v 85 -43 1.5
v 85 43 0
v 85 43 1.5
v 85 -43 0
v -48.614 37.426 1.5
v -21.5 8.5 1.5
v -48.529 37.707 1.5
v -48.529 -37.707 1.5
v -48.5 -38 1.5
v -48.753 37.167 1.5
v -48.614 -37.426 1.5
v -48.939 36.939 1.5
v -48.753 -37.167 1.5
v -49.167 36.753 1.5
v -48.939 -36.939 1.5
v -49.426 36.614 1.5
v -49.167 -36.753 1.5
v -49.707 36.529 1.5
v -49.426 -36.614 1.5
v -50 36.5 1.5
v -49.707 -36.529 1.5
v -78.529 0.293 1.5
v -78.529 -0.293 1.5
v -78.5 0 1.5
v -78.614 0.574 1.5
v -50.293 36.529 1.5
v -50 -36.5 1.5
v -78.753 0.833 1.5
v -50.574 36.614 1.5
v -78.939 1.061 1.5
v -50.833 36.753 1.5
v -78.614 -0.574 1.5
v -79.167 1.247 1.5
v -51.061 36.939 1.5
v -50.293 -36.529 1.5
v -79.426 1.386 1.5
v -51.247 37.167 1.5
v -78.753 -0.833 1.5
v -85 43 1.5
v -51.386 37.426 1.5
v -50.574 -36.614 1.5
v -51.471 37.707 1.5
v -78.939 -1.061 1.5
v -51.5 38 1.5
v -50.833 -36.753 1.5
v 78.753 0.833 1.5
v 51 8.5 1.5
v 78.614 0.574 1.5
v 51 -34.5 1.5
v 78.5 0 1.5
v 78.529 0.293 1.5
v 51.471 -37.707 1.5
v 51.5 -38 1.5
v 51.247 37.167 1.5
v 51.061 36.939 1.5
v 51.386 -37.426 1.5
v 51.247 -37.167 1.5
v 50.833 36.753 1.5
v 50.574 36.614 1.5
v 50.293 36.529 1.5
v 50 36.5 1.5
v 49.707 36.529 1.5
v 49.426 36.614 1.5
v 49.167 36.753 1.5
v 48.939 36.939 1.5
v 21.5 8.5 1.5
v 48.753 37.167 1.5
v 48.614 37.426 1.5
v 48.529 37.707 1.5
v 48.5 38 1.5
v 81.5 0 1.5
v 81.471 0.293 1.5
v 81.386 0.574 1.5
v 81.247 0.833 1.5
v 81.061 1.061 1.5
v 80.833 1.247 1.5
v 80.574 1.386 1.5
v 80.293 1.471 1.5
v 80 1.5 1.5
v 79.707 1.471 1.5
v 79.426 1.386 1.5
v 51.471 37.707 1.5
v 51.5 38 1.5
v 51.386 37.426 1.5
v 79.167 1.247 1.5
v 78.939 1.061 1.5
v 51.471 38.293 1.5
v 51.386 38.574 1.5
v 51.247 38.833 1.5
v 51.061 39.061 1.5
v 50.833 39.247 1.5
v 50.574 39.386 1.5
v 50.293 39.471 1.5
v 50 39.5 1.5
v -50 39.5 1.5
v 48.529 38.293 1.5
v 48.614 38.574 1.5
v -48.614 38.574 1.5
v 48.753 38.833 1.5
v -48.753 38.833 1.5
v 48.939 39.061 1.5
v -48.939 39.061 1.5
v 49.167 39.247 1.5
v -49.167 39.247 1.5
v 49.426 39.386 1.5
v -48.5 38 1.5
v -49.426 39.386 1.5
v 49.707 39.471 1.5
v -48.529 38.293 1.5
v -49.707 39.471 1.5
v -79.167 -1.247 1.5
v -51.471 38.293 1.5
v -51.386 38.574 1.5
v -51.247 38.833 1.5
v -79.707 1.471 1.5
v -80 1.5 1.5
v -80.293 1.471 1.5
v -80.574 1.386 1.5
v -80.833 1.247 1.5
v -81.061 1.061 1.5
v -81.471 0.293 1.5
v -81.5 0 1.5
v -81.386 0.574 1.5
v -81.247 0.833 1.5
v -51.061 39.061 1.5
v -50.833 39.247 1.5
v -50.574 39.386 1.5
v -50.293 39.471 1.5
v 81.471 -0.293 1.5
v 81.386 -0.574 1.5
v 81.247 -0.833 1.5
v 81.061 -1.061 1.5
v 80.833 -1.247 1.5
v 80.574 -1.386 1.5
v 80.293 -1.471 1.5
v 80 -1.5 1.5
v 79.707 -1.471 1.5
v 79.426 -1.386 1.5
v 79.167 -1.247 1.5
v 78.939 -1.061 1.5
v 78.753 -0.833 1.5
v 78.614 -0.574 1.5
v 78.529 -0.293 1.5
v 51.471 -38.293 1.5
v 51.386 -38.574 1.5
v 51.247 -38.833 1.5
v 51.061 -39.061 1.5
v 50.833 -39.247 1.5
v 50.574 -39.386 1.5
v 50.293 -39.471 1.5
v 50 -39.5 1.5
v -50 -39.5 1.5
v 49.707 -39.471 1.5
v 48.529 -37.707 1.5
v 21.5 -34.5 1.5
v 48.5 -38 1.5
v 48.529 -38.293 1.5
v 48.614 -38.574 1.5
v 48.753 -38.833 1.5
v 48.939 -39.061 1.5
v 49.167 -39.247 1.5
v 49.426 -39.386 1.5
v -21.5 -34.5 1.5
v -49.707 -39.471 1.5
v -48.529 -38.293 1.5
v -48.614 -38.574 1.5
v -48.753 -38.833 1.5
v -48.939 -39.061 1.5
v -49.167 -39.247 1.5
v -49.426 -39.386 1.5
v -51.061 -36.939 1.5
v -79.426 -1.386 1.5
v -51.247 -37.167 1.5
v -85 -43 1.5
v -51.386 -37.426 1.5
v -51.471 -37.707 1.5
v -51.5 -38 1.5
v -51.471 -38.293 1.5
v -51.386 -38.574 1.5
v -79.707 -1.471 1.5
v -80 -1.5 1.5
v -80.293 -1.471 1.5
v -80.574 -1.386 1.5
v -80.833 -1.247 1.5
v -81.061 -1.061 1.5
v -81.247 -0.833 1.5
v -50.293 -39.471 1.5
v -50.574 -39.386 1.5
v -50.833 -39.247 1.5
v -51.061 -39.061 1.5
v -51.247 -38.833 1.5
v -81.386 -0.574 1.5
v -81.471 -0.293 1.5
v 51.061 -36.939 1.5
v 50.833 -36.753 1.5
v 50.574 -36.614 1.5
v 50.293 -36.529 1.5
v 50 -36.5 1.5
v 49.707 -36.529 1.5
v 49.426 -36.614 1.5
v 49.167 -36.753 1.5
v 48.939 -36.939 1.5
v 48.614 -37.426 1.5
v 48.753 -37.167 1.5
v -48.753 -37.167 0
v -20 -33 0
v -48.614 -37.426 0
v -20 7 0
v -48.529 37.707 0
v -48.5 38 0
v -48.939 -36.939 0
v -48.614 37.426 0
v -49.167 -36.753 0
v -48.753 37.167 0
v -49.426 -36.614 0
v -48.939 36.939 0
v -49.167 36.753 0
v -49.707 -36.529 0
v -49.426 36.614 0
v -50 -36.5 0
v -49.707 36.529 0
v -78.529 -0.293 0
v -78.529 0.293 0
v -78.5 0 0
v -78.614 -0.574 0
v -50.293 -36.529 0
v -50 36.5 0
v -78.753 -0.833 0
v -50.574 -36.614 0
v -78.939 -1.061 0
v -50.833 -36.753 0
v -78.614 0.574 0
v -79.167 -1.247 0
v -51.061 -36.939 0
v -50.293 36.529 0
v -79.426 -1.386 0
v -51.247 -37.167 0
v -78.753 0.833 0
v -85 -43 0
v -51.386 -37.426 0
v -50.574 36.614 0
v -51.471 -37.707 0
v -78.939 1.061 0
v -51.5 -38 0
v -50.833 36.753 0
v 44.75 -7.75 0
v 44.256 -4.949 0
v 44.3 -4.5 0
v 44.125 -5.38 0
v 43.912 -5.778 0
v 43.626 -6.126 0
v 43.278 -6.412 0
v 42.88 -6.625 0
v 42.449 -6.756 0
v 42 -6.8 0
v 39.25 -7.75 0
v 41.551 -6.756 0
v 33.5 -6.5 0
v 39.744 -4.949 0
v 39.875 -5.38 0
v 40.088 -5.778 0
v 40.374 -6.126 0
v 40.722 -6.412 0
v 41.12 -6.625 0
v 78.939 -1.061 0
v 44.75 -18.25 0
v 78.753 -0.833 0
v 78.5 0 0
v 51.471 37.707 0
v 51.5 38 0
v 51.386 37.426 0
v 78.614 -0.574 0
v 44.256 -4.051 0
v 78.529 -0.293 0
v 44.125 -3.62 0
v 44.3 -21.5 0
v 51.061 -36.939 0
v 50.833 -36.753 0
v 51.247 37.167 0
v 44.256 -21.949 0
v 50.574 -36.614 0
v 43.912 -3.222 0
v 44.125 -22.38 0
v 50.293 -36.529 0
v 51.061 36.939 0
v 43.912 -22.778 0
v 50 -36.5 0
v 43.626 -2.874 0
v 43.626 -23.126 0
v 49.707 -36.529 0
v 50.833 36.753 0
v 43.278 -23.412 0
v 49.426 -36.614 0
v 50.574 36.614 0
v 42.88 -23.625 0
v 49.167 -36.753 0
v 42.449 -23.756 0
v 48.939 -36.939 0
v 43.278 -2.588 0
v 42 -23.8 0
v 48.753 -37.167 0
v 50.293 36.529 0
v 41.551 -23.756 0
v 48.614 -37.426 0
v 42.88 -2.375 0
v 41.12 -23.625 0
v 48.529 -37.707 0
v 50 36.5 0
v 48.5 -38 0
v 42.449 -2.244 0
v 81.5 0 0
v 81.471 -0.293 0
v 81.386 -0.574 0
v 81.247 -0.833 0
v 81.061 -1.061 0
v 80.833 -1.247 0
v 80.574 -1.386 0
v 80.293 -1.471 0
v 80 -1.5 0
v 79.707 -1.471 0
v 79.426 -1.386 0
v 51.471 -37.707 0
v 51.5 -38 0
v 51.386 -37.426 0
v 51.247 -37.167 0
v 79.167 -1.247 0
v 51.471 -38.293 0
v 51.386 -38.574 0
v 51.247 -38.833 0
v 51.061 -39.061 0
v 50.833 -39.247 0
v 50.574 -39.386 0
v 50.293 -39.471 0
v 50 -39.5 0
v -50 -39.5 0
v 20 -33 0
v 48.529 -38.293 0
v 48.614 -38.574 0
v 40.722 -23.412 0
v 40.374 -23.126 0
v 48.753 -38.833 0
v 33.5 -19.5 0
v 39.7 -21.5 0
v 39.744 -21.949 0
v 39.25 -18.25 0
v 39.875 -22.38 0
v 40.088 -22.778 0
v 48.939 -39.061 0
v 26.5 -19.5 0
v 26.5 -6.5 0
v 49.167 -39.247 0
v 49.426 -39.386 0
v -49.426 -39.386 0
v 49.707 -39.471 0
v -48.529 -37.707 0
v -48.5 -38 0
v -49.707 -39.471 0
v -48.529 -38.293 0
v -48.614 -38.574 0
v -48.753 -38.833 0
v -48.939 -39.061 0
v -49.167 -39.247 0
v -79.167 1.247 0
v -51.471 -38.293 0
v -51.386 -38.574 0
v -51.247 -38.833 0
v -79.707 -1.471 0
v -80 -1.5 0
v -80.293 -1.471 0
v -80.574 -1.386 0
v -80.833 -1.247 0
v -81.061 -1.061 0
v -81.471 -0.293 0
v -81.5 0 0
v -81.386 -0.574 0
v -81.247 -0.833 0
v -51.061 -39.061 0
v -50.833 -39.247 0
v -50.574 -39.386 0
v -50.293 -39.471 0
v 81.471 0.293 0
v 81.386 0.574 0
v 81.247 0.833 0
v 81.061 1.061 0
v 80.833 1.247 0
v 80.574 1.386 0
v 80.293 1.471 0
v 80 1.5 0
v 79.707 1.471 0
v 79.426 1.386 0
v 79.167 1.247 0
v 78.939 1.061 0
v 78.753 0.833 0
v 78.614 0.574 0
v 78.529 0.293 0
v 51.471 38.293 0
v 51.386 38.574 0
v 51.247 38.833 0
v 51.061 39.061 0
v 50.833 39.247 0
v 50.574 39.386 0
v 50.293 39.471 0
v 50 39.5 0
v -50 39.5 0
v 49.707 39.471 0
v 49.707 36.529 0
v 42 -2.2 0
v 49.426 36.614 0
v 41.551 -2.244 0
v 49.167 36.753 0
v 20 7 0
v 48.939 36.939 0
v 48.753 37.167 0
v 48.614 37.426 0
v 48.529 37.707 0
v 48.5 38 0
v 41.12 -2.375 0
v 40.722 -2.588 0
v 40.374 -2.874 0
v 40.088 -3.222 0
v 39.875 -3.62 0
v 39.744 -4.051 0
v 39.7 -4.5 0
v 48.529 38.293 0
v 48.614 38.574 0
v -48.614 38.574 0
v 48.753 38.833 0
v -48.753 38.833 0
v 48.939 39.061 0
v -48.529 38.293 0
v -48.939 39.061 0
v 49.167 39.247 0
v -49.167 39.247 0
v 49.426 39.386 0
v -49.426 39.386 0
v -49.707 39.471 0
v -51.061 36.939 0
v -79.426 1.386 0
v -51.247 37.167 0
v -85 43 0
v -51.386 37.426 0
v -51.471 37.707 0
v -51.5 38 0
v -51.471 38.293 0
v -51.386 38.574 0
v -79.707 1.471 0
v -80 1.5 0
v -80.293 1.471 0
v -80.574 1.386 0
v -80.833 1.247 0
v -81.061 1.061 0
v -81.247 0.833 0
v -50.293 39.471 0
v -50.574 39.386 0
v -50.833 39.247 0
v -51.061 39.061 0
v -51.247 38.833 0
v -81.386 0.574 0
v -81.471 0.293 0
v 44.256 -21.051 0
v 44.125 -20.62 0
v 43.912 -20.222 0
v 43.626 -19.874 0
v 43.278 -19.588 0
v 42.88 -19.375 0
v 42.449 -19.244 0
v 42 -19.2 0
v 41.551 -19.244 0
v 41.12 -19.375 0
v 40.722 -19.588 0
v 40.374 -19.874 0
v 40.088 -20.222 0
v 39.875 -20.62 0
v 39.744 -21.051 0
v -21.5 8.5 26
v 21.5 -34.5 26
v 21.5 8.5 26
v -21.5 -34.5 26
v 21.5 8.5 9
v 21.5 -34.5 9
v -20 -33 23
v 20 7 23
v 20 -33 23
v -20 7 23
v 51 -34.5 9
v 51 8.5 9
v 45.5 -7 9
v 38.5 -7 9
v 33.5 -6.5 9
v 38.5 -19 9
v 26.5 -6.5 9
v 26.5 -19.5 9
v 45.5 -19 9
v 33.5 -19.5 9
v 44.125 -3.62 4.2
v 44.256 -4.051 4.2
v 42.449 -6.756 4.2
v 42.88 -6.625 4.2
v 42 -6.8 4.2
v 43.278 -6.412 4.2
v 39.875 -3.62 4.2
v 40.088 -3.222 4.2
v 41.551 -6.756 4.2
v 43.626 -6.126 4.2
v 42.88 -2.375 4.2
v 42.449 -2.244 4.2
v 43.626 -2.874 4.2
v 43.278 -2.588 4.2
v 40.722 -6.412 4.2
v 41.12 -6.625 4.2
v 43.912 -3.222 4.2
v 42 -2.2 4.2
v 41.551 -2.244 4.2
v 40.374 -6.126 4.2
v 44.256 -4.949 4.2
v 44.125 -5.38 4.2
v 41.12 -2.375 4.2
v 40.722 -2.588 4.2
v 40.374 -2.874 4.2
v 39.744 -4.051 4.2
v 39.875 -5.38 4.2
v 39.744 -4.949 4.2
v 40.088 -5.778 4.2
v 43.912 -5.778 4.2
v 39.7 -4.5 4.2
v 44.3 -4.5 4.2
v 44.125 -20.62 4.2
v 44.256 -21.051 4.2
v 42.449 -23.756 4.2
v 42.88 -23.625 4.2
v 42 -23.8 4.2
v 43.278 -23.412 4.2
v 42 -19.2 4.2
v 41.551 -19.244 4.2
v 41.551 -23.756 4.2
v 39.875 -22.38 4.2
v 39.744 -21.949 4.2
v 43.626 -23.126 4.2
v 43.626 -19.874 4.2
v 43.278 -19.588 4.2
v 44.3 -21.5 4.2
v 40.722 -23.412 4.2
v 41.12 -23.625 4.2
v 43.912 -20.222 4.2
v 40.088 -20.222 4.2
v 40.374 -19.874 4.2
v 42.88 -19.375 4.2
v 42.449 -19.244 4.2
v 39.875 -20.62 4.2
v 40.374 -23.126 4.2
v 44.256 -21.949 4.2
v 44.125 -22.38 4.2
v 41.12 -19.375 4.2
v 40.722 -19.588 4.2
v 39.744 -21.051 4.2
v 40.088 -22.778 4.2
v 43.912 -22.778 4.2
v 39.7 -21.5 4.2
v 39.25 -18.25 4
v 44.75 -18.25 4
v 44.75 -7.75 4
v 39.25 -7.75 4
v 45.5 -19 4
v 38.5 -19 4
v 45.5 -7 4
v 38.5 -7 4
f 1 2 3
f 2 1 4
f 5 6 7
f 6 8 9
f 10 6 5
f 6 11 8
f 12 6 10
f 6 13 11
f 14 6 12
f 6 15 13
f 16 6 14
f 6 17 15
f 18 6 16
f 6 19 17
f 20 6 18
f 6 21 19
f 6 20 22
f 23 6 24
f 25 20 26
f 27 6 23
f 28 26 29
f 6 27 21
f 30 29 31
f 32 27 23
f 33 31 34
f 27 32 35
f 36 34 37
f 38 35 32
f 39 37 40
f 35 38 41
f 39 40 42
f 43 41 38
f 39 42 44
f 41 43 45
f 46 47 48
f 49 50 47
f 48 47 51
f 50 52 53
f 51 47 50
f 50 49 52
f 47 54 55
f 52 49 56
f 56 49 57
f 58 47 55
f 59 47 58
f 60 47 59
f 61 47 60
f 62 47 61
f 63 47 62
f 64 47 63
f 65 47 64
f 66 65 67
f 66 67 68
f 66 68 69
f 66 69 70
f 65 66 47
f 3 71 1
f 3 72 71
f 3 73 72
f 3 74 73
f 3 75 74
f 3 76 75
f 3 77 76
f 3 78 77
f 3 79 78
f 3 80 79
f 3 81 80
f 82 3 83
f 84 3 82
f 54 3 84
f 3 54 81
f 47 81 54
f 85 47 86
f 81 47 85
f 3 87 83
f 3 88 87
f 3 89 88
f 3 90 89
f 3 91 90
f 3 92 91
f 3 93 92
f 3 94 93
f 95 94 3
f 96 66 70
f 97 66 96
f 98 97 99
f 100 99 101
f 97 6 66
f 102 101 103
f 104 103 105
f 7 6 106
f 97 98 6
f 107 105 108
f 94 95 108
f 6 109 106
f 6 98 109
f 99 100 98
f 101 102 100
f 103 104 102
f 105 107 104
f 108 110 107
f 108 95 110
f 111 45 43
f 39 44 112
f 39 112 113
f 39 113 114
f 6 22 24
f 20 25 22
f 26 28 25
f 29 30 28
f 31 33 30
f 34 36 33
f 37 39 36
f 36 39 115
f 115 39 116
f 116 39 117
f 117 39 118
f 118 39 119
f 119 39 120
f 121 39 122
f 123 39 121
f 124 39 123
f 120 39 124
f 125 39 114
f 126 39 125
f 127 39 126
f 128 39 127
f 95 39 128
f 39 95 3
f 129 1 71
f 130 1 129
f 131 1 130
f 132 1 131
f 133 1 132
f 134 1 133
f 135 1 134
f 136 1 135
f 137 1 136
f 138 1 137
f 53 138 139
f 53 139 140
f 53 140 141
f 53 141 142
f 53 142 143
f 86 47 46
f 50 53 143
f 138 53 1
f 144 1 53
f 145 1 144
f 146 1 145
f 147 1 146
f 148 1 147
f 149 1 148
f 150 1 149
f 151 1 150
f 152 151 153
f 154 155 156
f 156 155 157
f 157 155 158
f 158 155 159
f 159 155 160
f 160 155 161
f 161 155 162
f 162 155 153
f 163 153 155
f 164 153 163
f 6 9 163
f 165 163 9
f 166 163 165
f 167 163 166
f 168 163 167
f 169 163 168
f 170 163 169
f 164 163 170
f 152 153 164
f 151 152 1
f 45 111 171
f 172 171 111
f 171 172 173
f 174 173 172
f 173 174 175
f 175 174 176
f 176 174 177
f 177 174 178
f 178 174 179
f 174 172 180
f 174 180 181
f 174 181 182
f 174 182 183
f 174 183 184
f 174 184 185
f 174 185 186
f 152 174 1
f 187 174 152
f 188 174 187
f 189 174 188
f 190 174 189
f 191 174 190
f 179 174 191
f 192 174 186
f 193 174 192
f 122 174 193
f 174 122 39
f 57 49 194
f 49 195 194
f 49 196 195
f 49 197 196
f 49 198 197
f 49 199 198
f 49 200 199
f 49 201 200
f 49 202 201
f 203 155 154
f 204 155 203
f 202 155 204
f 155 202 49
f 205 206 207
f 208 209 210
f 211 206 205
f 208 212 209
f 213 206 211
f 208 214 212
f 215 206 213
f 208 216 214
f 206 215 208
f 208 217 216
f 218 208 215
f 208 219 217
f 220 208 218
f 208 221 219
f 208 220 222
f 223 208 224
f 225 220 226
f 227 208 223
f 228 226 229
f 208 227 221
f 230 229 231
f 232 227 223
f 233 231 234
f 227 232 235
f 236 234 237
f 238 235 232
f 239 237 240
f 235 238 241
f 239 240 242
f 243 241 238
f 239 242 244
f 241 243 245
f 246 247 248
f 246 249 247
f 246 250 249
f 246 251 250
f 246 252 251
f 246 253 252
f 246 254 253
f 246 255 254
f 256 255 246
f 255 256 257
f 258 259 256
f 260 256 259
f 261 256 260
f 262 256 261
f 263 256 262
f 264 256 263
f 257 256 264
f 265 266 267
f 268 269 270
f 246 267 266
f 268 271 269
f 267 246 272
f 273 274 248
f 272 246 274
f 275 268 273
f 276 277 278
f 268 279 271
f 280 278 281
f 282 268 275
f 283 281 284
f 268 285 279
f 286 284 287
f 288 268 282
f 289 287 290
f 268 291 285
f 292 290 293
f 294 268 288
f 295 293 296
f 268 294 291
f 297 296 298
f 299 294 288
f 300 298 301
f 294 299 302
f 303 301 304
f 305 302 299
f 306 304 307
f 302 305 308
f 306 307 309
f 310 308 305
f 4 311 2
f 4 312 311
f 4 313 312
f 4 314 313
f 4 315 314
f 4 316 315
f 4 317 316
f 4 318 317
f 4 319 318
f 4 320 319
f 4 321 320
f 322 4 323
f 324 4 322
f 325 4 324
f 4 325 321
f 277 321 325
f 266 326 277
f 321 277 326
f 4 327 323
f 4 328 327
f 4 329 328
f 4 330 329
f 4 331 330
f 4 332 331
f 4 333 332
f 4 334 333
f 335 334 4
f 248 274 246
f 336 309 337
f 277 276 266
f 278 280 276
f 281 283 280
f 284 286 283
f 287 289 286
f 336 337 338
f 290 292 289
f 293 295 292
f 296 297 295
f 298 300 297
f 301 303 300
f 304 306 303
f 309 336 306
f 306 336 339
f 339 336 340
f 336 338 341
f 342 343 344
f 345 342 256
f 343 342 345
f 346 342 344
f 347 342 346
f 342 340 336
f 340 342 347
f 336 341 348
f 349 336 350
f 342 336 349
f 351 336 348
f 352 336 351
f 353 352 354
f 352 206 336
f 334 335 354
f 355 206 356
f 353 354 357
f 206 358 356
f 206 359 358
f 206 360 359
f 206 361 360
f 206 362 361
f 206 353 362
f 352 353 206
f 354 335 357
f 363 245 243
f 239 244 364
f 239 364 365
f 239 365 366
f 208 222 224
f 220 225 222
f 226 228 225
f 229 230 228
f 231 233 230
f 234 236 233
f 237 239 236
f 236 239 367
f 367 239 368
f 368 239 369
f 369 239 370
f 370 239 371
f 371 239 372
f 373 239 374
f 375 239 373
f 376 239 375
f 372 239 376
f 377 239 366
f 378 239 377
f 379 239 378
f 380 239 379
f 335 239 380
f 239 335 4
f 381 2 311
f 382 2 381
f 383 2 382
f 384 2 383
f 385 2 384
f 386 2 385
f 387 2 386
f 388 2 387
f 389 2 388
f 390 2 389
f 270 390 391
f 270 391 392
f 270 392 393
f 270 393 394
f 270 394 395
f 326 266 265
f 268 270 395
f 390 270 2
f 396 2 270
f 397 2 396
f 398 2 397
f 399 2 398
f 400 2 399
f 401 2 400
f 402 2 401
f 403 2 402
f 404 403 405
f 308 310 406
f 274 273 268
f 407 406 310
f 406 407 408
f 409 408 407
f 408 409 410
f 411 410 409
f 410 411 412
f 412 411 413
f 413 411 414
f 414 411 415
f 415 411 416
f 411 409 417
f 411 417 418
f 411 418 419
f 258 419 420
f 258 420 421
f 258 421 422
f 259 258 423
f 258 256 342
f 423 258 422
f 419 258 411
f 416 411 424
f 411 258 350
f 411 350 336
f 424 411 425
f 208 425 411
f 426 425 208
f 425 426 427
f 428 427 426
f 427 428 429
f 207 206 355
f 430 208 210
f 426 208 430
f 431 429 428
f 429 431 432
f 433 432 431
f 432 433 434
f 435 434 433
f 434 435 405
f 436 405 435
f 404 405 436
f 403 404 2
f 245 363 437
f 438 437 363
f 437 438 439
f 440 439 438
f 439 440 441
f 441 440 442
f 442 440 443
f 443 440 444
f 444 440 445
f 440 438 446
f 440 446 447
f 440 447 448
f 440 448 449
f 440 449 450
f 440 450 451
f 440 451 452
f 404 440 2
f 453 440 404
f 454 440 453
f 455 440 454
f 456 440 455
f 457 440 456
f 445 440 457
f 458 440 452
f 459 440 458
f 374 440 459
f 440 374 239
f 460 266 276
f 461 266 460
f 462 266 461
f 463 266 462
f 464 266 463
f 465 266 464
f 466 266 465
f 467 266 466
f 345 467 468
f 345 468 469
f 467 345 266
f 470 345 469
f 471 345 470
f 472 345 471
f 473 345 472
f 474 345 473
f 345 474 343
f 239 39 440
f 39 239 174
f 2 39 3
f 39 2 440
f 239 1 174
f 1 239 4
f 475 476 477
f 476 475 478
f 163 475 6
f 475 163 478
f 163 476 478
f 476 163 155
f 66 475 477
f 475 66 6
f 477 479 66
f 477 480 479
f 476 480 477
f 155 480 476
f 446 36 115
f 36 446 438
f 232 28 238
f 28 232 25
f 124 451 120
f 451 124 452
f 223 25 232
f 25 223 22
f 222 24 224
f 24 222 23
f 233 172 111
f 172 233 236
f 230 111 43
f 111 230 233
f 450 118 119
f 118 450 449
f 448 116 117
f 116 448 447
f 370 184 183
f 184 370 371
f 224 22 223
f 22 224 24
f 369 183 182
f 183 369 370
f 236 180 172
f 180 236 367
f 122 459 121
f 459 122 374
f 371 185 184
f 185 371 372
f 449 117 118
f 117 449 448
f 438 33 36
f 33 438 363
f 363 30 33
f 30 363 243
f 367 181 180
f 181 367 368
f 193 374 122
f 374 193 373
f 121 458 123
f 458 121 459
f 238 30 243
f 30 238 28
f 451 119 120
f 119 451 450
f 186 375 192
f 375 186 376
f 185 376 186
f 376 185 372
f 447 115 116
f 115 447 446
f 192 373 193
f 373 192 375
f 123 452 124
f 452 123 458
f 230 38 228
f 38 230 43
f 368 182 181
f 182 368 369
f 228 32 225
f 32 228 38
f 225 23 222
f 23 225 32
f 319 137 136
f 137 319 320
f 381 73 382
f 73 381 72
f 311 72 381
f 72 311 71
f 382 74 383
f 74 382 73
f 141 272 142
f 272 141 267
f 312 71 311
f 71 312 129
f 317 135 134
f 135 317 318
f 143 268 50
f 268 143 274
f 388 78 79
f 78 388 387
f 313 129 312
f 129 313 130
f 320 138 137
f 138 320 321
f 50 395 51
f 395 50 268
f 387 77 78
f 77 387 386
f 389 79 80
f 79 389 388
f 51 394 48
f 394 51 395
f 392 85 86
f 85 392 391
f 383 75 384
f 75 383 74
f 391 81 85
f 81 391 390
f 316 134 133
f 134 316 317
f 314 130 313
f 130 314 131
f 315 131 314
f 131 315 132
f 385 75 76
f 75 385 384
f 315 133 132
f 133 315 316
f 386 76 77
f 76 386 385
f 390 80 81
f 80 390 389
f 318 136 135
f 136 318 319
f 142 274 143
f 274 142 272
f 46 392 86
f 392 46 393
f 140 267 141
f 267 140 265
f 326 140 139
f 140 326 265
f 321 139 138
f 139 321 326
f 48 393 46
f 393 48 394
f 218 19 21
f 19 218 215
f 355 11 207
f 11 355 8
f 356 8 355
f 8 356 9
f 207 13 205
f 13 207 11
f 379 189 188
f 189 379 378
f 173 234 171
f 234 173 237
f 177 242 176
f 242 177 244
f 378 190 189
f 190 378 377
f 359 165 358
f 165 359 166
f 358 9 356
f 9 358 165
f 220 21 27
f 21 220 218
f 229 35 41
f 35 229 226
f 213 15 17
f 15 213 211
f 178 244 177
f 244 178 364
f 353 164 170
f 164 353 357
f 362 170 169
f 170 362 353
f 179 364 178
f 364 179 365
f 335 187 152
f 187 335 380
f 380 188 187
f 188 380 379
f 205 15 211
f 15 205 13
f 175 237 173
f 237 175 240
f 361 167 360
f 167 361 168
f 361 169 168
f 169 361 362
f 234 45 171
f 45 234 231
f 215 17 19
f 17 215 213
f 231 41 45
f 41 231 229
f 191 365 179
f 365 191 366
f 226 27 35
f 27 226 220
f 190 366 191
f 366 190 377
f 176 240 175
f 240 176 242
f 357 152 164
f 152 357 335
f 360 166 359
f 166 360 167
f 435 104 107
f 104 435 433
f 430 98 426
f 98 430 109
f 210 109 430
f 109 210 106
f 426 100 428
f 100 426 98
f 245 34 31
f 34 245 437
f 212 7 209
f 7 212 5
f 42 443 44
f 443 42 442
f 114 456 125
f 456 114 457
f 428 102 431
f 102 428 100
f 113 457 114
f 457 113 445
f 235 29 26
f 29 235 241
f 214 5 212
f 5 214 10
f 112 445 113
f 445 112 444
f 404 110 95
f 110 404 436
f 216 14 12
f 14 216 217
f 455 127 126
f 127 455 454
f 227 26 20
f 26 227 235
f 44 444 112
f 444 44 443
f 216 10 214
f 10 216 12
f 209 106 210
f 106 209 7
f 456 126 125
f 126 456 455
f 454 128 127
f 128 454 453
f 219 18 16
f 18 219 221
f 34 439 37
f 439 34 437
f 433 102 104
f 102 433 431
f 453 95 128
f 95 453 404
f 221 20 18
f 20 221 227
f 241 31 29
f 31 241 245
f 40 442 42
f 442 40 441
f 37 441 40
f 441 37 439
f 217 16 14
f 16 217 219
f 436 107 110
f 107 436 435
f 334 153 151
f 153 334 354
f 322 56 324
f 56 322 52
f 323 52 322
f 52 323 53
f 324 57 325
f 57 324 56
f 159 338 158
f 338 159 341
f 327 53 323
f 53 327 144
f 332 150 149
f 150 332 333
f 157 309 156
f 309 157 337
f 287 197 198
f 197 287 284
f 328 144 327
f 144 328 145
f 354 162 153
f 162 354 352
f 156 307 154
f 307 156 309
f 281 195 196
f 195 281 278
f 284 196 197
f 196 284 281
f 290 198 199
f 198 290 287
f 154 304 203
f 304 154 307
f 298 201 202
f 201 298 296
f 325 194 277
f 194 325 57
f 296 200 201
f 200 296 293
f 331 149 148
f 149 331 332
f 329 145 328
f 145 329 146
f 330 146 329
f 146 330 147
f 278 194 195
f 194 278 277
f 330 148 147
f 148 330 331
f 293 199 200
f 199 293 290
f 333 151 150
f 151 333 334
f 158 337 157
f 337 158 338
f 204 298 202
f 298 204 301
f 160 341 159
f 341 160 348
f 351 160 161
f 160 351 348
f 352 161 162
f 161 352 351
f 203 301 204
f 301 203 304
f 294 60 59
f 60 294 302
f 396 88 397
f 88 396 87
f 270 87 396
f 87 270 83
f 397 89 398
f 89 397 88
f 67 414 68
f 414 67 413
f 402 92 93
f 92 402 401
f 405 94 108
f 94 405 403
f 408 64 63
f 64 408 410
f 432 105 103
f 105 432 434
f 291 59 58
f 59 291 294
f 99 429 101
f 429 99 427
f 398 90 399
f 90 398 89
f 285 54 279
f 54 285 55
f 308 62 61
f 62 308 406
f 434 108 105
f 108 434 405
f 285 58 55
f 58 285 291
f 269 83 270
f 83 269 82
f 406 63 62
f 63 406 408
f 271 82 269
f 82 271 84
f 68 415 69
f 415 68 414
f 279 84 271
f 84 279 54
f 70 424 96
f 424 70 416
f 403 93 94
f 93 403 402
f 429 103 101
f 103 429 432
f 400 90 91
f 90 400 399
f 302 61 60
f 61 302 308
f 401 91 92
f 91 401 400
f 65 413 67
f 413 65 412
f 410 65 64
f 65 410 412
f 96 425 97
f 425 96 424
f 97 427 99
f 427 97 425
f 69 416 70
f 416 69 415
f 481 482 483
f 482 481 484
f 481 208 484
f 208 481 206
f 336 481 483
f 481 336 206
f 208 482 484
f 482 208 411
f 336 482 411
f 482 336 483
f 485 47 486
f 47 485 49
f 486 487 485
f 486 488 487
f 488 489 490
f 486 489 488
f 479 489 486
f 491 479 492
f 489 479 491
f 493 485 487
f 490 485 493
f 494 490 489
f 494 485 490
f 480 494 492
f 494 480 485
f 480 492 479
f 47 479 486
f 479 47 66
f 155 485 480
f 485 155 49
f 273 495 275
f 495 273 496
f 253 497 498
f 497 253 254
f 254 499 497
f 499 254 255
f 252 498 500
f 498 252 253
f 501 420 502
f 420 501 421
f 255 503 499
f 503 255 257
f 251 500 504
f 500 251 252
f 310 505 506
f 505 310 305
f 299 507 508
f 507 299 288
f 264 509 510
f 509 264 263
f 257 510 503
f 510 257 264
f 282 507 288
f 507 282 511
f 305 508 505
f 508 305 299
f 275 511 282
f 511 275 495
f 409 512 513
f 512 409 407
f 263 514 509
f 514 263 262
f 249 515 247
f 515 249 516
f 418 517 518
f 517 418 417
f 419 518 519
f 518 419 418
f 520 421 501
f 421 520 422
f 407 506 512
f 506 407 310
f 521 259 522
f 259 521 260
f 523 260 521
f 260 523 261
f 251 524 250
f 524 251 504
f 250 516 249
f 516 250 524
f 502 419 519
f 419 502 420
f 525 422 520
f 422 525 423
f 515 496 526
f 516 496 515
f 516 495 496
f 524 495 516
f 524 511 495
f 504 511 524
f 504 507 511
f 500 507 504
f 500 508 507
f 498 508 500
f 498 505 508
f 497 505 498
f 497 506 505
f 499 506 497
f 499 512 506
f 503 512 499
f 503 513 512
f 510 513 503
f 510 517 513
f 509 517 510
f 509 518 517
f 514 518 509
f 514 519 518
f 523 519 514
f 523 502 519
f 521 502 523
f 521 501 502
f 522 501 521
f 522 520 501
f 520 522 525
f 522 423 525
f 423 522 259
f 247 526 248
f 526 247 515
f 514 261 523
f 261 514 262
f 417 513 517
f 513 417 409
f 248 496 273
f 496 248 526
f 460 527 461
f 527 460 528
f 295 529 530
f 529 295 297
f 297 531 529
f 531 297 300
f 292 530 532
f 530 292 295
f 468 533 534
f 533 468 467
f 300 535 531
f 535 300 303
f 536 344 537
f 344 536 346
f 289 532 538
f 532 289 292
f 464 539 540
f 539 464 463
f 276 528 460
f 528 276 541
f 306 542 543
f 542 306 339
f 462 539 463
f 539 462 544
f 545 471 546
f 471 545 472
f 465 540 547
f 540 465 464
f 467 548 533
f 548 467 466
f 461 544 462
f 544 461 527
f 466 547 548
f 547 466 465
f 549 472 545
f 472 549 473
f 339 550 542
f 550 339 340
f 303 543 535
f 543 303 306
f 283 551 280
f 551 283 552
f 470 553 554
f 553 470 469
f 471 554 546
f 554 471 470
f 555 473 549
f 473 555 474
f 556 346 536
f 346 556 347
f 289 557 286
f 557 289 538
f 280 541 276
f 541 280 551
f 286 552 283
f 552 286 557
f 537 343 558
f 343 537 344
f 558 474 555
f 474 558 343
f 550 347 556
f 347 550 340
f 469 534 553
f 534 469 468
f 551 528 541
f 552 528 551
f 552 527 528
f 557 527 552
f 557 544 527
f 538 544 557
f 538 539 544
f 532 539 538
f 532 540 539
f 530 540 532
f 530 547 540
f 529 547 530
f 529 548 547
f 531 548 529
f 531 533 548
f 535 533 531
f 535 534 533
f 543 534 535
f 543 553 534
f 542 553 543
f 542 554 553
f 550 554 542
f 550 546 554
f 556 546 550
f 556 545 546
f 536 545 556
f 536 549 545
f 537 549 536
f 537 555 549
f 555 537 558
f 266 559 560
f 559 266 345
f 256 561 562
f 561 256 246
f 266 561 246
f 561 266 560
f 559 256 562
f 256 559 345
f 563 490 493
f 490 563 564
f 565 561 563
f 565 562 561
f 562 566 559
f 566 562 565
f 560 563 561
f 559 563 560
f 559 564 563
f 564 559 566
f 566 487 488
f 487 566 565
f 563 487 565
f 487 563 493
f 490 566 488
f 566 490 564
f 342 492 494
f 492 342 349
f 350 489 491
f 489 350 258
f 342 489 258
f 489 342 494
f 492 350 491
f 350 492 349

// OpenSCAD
L=170;
W=86;
T=1.5;
ML=40;
MW=40;
MH=23;

difference() {
    union() {
        cube_center([L,W,T]);
        translate([0,-13,0])
        minkowski() {
            cube_center([ML+2*T,MW+2*T,0.0001]);
            rotate([0,0,45])
            cylinder($fn=4,h=MH+2*T,d1=0.0001,d2=0.0001);
        }
    }
    
    translate([0,-13,0])
    minkowski() {
        cube_center([ML,MW,0.0001]);
        rotate([0,0,45])
        cylinder($fn=4,h=MH,d1=0.0001,d2=0.0001);
    }
    
    
    for(s=[-1,1])
    translate([s*(L/2-5),0,0])
    cylinder(d=3,$fn=32,h=10);
    
    for(s=[-1,1]) for(t=[-1,1])
    translate([s*(L/2-35),t*(W/2-5),0])
    cylinder(d=3,$fn=32,h=10);
    
    translate([36,-13,0])
    cube_center([30,MW+2*T,9]);
}

translate([36,-13,0])
difference() {
    cube_center([30,MW+2*T,9]);
    rotate([0,0,-90]) {
    translate([0,-6,0]) {
    cube_center([13,7,10]);
    }
    translate([0,6,0]) {
    for(s=[-1,1])
    translate([17/2*s,0,0]) {
        cylinder(d=4.6,h=4.2,$fn=32);
    }
    cube_center([10.5,5.5,10]);
    translate([0,0,4])
    cube_center([12,7,6]);
    }
}
}


module cube_center(dims,r=0) {
    if(r==0) {
        translate([-dims[0]/2, -dims[1]/2, 0])
        cube(dims);
    } else {
        
        minkowski() {
            translate([-dims[0]/2+r, -dims[1]/2+r, 0])
            cube([dims[0]-2*r,dims[1]-2*r,dims[2]]);
            cylinder(r=r,h=0.00001,$fn=32);
        }
    }
}
